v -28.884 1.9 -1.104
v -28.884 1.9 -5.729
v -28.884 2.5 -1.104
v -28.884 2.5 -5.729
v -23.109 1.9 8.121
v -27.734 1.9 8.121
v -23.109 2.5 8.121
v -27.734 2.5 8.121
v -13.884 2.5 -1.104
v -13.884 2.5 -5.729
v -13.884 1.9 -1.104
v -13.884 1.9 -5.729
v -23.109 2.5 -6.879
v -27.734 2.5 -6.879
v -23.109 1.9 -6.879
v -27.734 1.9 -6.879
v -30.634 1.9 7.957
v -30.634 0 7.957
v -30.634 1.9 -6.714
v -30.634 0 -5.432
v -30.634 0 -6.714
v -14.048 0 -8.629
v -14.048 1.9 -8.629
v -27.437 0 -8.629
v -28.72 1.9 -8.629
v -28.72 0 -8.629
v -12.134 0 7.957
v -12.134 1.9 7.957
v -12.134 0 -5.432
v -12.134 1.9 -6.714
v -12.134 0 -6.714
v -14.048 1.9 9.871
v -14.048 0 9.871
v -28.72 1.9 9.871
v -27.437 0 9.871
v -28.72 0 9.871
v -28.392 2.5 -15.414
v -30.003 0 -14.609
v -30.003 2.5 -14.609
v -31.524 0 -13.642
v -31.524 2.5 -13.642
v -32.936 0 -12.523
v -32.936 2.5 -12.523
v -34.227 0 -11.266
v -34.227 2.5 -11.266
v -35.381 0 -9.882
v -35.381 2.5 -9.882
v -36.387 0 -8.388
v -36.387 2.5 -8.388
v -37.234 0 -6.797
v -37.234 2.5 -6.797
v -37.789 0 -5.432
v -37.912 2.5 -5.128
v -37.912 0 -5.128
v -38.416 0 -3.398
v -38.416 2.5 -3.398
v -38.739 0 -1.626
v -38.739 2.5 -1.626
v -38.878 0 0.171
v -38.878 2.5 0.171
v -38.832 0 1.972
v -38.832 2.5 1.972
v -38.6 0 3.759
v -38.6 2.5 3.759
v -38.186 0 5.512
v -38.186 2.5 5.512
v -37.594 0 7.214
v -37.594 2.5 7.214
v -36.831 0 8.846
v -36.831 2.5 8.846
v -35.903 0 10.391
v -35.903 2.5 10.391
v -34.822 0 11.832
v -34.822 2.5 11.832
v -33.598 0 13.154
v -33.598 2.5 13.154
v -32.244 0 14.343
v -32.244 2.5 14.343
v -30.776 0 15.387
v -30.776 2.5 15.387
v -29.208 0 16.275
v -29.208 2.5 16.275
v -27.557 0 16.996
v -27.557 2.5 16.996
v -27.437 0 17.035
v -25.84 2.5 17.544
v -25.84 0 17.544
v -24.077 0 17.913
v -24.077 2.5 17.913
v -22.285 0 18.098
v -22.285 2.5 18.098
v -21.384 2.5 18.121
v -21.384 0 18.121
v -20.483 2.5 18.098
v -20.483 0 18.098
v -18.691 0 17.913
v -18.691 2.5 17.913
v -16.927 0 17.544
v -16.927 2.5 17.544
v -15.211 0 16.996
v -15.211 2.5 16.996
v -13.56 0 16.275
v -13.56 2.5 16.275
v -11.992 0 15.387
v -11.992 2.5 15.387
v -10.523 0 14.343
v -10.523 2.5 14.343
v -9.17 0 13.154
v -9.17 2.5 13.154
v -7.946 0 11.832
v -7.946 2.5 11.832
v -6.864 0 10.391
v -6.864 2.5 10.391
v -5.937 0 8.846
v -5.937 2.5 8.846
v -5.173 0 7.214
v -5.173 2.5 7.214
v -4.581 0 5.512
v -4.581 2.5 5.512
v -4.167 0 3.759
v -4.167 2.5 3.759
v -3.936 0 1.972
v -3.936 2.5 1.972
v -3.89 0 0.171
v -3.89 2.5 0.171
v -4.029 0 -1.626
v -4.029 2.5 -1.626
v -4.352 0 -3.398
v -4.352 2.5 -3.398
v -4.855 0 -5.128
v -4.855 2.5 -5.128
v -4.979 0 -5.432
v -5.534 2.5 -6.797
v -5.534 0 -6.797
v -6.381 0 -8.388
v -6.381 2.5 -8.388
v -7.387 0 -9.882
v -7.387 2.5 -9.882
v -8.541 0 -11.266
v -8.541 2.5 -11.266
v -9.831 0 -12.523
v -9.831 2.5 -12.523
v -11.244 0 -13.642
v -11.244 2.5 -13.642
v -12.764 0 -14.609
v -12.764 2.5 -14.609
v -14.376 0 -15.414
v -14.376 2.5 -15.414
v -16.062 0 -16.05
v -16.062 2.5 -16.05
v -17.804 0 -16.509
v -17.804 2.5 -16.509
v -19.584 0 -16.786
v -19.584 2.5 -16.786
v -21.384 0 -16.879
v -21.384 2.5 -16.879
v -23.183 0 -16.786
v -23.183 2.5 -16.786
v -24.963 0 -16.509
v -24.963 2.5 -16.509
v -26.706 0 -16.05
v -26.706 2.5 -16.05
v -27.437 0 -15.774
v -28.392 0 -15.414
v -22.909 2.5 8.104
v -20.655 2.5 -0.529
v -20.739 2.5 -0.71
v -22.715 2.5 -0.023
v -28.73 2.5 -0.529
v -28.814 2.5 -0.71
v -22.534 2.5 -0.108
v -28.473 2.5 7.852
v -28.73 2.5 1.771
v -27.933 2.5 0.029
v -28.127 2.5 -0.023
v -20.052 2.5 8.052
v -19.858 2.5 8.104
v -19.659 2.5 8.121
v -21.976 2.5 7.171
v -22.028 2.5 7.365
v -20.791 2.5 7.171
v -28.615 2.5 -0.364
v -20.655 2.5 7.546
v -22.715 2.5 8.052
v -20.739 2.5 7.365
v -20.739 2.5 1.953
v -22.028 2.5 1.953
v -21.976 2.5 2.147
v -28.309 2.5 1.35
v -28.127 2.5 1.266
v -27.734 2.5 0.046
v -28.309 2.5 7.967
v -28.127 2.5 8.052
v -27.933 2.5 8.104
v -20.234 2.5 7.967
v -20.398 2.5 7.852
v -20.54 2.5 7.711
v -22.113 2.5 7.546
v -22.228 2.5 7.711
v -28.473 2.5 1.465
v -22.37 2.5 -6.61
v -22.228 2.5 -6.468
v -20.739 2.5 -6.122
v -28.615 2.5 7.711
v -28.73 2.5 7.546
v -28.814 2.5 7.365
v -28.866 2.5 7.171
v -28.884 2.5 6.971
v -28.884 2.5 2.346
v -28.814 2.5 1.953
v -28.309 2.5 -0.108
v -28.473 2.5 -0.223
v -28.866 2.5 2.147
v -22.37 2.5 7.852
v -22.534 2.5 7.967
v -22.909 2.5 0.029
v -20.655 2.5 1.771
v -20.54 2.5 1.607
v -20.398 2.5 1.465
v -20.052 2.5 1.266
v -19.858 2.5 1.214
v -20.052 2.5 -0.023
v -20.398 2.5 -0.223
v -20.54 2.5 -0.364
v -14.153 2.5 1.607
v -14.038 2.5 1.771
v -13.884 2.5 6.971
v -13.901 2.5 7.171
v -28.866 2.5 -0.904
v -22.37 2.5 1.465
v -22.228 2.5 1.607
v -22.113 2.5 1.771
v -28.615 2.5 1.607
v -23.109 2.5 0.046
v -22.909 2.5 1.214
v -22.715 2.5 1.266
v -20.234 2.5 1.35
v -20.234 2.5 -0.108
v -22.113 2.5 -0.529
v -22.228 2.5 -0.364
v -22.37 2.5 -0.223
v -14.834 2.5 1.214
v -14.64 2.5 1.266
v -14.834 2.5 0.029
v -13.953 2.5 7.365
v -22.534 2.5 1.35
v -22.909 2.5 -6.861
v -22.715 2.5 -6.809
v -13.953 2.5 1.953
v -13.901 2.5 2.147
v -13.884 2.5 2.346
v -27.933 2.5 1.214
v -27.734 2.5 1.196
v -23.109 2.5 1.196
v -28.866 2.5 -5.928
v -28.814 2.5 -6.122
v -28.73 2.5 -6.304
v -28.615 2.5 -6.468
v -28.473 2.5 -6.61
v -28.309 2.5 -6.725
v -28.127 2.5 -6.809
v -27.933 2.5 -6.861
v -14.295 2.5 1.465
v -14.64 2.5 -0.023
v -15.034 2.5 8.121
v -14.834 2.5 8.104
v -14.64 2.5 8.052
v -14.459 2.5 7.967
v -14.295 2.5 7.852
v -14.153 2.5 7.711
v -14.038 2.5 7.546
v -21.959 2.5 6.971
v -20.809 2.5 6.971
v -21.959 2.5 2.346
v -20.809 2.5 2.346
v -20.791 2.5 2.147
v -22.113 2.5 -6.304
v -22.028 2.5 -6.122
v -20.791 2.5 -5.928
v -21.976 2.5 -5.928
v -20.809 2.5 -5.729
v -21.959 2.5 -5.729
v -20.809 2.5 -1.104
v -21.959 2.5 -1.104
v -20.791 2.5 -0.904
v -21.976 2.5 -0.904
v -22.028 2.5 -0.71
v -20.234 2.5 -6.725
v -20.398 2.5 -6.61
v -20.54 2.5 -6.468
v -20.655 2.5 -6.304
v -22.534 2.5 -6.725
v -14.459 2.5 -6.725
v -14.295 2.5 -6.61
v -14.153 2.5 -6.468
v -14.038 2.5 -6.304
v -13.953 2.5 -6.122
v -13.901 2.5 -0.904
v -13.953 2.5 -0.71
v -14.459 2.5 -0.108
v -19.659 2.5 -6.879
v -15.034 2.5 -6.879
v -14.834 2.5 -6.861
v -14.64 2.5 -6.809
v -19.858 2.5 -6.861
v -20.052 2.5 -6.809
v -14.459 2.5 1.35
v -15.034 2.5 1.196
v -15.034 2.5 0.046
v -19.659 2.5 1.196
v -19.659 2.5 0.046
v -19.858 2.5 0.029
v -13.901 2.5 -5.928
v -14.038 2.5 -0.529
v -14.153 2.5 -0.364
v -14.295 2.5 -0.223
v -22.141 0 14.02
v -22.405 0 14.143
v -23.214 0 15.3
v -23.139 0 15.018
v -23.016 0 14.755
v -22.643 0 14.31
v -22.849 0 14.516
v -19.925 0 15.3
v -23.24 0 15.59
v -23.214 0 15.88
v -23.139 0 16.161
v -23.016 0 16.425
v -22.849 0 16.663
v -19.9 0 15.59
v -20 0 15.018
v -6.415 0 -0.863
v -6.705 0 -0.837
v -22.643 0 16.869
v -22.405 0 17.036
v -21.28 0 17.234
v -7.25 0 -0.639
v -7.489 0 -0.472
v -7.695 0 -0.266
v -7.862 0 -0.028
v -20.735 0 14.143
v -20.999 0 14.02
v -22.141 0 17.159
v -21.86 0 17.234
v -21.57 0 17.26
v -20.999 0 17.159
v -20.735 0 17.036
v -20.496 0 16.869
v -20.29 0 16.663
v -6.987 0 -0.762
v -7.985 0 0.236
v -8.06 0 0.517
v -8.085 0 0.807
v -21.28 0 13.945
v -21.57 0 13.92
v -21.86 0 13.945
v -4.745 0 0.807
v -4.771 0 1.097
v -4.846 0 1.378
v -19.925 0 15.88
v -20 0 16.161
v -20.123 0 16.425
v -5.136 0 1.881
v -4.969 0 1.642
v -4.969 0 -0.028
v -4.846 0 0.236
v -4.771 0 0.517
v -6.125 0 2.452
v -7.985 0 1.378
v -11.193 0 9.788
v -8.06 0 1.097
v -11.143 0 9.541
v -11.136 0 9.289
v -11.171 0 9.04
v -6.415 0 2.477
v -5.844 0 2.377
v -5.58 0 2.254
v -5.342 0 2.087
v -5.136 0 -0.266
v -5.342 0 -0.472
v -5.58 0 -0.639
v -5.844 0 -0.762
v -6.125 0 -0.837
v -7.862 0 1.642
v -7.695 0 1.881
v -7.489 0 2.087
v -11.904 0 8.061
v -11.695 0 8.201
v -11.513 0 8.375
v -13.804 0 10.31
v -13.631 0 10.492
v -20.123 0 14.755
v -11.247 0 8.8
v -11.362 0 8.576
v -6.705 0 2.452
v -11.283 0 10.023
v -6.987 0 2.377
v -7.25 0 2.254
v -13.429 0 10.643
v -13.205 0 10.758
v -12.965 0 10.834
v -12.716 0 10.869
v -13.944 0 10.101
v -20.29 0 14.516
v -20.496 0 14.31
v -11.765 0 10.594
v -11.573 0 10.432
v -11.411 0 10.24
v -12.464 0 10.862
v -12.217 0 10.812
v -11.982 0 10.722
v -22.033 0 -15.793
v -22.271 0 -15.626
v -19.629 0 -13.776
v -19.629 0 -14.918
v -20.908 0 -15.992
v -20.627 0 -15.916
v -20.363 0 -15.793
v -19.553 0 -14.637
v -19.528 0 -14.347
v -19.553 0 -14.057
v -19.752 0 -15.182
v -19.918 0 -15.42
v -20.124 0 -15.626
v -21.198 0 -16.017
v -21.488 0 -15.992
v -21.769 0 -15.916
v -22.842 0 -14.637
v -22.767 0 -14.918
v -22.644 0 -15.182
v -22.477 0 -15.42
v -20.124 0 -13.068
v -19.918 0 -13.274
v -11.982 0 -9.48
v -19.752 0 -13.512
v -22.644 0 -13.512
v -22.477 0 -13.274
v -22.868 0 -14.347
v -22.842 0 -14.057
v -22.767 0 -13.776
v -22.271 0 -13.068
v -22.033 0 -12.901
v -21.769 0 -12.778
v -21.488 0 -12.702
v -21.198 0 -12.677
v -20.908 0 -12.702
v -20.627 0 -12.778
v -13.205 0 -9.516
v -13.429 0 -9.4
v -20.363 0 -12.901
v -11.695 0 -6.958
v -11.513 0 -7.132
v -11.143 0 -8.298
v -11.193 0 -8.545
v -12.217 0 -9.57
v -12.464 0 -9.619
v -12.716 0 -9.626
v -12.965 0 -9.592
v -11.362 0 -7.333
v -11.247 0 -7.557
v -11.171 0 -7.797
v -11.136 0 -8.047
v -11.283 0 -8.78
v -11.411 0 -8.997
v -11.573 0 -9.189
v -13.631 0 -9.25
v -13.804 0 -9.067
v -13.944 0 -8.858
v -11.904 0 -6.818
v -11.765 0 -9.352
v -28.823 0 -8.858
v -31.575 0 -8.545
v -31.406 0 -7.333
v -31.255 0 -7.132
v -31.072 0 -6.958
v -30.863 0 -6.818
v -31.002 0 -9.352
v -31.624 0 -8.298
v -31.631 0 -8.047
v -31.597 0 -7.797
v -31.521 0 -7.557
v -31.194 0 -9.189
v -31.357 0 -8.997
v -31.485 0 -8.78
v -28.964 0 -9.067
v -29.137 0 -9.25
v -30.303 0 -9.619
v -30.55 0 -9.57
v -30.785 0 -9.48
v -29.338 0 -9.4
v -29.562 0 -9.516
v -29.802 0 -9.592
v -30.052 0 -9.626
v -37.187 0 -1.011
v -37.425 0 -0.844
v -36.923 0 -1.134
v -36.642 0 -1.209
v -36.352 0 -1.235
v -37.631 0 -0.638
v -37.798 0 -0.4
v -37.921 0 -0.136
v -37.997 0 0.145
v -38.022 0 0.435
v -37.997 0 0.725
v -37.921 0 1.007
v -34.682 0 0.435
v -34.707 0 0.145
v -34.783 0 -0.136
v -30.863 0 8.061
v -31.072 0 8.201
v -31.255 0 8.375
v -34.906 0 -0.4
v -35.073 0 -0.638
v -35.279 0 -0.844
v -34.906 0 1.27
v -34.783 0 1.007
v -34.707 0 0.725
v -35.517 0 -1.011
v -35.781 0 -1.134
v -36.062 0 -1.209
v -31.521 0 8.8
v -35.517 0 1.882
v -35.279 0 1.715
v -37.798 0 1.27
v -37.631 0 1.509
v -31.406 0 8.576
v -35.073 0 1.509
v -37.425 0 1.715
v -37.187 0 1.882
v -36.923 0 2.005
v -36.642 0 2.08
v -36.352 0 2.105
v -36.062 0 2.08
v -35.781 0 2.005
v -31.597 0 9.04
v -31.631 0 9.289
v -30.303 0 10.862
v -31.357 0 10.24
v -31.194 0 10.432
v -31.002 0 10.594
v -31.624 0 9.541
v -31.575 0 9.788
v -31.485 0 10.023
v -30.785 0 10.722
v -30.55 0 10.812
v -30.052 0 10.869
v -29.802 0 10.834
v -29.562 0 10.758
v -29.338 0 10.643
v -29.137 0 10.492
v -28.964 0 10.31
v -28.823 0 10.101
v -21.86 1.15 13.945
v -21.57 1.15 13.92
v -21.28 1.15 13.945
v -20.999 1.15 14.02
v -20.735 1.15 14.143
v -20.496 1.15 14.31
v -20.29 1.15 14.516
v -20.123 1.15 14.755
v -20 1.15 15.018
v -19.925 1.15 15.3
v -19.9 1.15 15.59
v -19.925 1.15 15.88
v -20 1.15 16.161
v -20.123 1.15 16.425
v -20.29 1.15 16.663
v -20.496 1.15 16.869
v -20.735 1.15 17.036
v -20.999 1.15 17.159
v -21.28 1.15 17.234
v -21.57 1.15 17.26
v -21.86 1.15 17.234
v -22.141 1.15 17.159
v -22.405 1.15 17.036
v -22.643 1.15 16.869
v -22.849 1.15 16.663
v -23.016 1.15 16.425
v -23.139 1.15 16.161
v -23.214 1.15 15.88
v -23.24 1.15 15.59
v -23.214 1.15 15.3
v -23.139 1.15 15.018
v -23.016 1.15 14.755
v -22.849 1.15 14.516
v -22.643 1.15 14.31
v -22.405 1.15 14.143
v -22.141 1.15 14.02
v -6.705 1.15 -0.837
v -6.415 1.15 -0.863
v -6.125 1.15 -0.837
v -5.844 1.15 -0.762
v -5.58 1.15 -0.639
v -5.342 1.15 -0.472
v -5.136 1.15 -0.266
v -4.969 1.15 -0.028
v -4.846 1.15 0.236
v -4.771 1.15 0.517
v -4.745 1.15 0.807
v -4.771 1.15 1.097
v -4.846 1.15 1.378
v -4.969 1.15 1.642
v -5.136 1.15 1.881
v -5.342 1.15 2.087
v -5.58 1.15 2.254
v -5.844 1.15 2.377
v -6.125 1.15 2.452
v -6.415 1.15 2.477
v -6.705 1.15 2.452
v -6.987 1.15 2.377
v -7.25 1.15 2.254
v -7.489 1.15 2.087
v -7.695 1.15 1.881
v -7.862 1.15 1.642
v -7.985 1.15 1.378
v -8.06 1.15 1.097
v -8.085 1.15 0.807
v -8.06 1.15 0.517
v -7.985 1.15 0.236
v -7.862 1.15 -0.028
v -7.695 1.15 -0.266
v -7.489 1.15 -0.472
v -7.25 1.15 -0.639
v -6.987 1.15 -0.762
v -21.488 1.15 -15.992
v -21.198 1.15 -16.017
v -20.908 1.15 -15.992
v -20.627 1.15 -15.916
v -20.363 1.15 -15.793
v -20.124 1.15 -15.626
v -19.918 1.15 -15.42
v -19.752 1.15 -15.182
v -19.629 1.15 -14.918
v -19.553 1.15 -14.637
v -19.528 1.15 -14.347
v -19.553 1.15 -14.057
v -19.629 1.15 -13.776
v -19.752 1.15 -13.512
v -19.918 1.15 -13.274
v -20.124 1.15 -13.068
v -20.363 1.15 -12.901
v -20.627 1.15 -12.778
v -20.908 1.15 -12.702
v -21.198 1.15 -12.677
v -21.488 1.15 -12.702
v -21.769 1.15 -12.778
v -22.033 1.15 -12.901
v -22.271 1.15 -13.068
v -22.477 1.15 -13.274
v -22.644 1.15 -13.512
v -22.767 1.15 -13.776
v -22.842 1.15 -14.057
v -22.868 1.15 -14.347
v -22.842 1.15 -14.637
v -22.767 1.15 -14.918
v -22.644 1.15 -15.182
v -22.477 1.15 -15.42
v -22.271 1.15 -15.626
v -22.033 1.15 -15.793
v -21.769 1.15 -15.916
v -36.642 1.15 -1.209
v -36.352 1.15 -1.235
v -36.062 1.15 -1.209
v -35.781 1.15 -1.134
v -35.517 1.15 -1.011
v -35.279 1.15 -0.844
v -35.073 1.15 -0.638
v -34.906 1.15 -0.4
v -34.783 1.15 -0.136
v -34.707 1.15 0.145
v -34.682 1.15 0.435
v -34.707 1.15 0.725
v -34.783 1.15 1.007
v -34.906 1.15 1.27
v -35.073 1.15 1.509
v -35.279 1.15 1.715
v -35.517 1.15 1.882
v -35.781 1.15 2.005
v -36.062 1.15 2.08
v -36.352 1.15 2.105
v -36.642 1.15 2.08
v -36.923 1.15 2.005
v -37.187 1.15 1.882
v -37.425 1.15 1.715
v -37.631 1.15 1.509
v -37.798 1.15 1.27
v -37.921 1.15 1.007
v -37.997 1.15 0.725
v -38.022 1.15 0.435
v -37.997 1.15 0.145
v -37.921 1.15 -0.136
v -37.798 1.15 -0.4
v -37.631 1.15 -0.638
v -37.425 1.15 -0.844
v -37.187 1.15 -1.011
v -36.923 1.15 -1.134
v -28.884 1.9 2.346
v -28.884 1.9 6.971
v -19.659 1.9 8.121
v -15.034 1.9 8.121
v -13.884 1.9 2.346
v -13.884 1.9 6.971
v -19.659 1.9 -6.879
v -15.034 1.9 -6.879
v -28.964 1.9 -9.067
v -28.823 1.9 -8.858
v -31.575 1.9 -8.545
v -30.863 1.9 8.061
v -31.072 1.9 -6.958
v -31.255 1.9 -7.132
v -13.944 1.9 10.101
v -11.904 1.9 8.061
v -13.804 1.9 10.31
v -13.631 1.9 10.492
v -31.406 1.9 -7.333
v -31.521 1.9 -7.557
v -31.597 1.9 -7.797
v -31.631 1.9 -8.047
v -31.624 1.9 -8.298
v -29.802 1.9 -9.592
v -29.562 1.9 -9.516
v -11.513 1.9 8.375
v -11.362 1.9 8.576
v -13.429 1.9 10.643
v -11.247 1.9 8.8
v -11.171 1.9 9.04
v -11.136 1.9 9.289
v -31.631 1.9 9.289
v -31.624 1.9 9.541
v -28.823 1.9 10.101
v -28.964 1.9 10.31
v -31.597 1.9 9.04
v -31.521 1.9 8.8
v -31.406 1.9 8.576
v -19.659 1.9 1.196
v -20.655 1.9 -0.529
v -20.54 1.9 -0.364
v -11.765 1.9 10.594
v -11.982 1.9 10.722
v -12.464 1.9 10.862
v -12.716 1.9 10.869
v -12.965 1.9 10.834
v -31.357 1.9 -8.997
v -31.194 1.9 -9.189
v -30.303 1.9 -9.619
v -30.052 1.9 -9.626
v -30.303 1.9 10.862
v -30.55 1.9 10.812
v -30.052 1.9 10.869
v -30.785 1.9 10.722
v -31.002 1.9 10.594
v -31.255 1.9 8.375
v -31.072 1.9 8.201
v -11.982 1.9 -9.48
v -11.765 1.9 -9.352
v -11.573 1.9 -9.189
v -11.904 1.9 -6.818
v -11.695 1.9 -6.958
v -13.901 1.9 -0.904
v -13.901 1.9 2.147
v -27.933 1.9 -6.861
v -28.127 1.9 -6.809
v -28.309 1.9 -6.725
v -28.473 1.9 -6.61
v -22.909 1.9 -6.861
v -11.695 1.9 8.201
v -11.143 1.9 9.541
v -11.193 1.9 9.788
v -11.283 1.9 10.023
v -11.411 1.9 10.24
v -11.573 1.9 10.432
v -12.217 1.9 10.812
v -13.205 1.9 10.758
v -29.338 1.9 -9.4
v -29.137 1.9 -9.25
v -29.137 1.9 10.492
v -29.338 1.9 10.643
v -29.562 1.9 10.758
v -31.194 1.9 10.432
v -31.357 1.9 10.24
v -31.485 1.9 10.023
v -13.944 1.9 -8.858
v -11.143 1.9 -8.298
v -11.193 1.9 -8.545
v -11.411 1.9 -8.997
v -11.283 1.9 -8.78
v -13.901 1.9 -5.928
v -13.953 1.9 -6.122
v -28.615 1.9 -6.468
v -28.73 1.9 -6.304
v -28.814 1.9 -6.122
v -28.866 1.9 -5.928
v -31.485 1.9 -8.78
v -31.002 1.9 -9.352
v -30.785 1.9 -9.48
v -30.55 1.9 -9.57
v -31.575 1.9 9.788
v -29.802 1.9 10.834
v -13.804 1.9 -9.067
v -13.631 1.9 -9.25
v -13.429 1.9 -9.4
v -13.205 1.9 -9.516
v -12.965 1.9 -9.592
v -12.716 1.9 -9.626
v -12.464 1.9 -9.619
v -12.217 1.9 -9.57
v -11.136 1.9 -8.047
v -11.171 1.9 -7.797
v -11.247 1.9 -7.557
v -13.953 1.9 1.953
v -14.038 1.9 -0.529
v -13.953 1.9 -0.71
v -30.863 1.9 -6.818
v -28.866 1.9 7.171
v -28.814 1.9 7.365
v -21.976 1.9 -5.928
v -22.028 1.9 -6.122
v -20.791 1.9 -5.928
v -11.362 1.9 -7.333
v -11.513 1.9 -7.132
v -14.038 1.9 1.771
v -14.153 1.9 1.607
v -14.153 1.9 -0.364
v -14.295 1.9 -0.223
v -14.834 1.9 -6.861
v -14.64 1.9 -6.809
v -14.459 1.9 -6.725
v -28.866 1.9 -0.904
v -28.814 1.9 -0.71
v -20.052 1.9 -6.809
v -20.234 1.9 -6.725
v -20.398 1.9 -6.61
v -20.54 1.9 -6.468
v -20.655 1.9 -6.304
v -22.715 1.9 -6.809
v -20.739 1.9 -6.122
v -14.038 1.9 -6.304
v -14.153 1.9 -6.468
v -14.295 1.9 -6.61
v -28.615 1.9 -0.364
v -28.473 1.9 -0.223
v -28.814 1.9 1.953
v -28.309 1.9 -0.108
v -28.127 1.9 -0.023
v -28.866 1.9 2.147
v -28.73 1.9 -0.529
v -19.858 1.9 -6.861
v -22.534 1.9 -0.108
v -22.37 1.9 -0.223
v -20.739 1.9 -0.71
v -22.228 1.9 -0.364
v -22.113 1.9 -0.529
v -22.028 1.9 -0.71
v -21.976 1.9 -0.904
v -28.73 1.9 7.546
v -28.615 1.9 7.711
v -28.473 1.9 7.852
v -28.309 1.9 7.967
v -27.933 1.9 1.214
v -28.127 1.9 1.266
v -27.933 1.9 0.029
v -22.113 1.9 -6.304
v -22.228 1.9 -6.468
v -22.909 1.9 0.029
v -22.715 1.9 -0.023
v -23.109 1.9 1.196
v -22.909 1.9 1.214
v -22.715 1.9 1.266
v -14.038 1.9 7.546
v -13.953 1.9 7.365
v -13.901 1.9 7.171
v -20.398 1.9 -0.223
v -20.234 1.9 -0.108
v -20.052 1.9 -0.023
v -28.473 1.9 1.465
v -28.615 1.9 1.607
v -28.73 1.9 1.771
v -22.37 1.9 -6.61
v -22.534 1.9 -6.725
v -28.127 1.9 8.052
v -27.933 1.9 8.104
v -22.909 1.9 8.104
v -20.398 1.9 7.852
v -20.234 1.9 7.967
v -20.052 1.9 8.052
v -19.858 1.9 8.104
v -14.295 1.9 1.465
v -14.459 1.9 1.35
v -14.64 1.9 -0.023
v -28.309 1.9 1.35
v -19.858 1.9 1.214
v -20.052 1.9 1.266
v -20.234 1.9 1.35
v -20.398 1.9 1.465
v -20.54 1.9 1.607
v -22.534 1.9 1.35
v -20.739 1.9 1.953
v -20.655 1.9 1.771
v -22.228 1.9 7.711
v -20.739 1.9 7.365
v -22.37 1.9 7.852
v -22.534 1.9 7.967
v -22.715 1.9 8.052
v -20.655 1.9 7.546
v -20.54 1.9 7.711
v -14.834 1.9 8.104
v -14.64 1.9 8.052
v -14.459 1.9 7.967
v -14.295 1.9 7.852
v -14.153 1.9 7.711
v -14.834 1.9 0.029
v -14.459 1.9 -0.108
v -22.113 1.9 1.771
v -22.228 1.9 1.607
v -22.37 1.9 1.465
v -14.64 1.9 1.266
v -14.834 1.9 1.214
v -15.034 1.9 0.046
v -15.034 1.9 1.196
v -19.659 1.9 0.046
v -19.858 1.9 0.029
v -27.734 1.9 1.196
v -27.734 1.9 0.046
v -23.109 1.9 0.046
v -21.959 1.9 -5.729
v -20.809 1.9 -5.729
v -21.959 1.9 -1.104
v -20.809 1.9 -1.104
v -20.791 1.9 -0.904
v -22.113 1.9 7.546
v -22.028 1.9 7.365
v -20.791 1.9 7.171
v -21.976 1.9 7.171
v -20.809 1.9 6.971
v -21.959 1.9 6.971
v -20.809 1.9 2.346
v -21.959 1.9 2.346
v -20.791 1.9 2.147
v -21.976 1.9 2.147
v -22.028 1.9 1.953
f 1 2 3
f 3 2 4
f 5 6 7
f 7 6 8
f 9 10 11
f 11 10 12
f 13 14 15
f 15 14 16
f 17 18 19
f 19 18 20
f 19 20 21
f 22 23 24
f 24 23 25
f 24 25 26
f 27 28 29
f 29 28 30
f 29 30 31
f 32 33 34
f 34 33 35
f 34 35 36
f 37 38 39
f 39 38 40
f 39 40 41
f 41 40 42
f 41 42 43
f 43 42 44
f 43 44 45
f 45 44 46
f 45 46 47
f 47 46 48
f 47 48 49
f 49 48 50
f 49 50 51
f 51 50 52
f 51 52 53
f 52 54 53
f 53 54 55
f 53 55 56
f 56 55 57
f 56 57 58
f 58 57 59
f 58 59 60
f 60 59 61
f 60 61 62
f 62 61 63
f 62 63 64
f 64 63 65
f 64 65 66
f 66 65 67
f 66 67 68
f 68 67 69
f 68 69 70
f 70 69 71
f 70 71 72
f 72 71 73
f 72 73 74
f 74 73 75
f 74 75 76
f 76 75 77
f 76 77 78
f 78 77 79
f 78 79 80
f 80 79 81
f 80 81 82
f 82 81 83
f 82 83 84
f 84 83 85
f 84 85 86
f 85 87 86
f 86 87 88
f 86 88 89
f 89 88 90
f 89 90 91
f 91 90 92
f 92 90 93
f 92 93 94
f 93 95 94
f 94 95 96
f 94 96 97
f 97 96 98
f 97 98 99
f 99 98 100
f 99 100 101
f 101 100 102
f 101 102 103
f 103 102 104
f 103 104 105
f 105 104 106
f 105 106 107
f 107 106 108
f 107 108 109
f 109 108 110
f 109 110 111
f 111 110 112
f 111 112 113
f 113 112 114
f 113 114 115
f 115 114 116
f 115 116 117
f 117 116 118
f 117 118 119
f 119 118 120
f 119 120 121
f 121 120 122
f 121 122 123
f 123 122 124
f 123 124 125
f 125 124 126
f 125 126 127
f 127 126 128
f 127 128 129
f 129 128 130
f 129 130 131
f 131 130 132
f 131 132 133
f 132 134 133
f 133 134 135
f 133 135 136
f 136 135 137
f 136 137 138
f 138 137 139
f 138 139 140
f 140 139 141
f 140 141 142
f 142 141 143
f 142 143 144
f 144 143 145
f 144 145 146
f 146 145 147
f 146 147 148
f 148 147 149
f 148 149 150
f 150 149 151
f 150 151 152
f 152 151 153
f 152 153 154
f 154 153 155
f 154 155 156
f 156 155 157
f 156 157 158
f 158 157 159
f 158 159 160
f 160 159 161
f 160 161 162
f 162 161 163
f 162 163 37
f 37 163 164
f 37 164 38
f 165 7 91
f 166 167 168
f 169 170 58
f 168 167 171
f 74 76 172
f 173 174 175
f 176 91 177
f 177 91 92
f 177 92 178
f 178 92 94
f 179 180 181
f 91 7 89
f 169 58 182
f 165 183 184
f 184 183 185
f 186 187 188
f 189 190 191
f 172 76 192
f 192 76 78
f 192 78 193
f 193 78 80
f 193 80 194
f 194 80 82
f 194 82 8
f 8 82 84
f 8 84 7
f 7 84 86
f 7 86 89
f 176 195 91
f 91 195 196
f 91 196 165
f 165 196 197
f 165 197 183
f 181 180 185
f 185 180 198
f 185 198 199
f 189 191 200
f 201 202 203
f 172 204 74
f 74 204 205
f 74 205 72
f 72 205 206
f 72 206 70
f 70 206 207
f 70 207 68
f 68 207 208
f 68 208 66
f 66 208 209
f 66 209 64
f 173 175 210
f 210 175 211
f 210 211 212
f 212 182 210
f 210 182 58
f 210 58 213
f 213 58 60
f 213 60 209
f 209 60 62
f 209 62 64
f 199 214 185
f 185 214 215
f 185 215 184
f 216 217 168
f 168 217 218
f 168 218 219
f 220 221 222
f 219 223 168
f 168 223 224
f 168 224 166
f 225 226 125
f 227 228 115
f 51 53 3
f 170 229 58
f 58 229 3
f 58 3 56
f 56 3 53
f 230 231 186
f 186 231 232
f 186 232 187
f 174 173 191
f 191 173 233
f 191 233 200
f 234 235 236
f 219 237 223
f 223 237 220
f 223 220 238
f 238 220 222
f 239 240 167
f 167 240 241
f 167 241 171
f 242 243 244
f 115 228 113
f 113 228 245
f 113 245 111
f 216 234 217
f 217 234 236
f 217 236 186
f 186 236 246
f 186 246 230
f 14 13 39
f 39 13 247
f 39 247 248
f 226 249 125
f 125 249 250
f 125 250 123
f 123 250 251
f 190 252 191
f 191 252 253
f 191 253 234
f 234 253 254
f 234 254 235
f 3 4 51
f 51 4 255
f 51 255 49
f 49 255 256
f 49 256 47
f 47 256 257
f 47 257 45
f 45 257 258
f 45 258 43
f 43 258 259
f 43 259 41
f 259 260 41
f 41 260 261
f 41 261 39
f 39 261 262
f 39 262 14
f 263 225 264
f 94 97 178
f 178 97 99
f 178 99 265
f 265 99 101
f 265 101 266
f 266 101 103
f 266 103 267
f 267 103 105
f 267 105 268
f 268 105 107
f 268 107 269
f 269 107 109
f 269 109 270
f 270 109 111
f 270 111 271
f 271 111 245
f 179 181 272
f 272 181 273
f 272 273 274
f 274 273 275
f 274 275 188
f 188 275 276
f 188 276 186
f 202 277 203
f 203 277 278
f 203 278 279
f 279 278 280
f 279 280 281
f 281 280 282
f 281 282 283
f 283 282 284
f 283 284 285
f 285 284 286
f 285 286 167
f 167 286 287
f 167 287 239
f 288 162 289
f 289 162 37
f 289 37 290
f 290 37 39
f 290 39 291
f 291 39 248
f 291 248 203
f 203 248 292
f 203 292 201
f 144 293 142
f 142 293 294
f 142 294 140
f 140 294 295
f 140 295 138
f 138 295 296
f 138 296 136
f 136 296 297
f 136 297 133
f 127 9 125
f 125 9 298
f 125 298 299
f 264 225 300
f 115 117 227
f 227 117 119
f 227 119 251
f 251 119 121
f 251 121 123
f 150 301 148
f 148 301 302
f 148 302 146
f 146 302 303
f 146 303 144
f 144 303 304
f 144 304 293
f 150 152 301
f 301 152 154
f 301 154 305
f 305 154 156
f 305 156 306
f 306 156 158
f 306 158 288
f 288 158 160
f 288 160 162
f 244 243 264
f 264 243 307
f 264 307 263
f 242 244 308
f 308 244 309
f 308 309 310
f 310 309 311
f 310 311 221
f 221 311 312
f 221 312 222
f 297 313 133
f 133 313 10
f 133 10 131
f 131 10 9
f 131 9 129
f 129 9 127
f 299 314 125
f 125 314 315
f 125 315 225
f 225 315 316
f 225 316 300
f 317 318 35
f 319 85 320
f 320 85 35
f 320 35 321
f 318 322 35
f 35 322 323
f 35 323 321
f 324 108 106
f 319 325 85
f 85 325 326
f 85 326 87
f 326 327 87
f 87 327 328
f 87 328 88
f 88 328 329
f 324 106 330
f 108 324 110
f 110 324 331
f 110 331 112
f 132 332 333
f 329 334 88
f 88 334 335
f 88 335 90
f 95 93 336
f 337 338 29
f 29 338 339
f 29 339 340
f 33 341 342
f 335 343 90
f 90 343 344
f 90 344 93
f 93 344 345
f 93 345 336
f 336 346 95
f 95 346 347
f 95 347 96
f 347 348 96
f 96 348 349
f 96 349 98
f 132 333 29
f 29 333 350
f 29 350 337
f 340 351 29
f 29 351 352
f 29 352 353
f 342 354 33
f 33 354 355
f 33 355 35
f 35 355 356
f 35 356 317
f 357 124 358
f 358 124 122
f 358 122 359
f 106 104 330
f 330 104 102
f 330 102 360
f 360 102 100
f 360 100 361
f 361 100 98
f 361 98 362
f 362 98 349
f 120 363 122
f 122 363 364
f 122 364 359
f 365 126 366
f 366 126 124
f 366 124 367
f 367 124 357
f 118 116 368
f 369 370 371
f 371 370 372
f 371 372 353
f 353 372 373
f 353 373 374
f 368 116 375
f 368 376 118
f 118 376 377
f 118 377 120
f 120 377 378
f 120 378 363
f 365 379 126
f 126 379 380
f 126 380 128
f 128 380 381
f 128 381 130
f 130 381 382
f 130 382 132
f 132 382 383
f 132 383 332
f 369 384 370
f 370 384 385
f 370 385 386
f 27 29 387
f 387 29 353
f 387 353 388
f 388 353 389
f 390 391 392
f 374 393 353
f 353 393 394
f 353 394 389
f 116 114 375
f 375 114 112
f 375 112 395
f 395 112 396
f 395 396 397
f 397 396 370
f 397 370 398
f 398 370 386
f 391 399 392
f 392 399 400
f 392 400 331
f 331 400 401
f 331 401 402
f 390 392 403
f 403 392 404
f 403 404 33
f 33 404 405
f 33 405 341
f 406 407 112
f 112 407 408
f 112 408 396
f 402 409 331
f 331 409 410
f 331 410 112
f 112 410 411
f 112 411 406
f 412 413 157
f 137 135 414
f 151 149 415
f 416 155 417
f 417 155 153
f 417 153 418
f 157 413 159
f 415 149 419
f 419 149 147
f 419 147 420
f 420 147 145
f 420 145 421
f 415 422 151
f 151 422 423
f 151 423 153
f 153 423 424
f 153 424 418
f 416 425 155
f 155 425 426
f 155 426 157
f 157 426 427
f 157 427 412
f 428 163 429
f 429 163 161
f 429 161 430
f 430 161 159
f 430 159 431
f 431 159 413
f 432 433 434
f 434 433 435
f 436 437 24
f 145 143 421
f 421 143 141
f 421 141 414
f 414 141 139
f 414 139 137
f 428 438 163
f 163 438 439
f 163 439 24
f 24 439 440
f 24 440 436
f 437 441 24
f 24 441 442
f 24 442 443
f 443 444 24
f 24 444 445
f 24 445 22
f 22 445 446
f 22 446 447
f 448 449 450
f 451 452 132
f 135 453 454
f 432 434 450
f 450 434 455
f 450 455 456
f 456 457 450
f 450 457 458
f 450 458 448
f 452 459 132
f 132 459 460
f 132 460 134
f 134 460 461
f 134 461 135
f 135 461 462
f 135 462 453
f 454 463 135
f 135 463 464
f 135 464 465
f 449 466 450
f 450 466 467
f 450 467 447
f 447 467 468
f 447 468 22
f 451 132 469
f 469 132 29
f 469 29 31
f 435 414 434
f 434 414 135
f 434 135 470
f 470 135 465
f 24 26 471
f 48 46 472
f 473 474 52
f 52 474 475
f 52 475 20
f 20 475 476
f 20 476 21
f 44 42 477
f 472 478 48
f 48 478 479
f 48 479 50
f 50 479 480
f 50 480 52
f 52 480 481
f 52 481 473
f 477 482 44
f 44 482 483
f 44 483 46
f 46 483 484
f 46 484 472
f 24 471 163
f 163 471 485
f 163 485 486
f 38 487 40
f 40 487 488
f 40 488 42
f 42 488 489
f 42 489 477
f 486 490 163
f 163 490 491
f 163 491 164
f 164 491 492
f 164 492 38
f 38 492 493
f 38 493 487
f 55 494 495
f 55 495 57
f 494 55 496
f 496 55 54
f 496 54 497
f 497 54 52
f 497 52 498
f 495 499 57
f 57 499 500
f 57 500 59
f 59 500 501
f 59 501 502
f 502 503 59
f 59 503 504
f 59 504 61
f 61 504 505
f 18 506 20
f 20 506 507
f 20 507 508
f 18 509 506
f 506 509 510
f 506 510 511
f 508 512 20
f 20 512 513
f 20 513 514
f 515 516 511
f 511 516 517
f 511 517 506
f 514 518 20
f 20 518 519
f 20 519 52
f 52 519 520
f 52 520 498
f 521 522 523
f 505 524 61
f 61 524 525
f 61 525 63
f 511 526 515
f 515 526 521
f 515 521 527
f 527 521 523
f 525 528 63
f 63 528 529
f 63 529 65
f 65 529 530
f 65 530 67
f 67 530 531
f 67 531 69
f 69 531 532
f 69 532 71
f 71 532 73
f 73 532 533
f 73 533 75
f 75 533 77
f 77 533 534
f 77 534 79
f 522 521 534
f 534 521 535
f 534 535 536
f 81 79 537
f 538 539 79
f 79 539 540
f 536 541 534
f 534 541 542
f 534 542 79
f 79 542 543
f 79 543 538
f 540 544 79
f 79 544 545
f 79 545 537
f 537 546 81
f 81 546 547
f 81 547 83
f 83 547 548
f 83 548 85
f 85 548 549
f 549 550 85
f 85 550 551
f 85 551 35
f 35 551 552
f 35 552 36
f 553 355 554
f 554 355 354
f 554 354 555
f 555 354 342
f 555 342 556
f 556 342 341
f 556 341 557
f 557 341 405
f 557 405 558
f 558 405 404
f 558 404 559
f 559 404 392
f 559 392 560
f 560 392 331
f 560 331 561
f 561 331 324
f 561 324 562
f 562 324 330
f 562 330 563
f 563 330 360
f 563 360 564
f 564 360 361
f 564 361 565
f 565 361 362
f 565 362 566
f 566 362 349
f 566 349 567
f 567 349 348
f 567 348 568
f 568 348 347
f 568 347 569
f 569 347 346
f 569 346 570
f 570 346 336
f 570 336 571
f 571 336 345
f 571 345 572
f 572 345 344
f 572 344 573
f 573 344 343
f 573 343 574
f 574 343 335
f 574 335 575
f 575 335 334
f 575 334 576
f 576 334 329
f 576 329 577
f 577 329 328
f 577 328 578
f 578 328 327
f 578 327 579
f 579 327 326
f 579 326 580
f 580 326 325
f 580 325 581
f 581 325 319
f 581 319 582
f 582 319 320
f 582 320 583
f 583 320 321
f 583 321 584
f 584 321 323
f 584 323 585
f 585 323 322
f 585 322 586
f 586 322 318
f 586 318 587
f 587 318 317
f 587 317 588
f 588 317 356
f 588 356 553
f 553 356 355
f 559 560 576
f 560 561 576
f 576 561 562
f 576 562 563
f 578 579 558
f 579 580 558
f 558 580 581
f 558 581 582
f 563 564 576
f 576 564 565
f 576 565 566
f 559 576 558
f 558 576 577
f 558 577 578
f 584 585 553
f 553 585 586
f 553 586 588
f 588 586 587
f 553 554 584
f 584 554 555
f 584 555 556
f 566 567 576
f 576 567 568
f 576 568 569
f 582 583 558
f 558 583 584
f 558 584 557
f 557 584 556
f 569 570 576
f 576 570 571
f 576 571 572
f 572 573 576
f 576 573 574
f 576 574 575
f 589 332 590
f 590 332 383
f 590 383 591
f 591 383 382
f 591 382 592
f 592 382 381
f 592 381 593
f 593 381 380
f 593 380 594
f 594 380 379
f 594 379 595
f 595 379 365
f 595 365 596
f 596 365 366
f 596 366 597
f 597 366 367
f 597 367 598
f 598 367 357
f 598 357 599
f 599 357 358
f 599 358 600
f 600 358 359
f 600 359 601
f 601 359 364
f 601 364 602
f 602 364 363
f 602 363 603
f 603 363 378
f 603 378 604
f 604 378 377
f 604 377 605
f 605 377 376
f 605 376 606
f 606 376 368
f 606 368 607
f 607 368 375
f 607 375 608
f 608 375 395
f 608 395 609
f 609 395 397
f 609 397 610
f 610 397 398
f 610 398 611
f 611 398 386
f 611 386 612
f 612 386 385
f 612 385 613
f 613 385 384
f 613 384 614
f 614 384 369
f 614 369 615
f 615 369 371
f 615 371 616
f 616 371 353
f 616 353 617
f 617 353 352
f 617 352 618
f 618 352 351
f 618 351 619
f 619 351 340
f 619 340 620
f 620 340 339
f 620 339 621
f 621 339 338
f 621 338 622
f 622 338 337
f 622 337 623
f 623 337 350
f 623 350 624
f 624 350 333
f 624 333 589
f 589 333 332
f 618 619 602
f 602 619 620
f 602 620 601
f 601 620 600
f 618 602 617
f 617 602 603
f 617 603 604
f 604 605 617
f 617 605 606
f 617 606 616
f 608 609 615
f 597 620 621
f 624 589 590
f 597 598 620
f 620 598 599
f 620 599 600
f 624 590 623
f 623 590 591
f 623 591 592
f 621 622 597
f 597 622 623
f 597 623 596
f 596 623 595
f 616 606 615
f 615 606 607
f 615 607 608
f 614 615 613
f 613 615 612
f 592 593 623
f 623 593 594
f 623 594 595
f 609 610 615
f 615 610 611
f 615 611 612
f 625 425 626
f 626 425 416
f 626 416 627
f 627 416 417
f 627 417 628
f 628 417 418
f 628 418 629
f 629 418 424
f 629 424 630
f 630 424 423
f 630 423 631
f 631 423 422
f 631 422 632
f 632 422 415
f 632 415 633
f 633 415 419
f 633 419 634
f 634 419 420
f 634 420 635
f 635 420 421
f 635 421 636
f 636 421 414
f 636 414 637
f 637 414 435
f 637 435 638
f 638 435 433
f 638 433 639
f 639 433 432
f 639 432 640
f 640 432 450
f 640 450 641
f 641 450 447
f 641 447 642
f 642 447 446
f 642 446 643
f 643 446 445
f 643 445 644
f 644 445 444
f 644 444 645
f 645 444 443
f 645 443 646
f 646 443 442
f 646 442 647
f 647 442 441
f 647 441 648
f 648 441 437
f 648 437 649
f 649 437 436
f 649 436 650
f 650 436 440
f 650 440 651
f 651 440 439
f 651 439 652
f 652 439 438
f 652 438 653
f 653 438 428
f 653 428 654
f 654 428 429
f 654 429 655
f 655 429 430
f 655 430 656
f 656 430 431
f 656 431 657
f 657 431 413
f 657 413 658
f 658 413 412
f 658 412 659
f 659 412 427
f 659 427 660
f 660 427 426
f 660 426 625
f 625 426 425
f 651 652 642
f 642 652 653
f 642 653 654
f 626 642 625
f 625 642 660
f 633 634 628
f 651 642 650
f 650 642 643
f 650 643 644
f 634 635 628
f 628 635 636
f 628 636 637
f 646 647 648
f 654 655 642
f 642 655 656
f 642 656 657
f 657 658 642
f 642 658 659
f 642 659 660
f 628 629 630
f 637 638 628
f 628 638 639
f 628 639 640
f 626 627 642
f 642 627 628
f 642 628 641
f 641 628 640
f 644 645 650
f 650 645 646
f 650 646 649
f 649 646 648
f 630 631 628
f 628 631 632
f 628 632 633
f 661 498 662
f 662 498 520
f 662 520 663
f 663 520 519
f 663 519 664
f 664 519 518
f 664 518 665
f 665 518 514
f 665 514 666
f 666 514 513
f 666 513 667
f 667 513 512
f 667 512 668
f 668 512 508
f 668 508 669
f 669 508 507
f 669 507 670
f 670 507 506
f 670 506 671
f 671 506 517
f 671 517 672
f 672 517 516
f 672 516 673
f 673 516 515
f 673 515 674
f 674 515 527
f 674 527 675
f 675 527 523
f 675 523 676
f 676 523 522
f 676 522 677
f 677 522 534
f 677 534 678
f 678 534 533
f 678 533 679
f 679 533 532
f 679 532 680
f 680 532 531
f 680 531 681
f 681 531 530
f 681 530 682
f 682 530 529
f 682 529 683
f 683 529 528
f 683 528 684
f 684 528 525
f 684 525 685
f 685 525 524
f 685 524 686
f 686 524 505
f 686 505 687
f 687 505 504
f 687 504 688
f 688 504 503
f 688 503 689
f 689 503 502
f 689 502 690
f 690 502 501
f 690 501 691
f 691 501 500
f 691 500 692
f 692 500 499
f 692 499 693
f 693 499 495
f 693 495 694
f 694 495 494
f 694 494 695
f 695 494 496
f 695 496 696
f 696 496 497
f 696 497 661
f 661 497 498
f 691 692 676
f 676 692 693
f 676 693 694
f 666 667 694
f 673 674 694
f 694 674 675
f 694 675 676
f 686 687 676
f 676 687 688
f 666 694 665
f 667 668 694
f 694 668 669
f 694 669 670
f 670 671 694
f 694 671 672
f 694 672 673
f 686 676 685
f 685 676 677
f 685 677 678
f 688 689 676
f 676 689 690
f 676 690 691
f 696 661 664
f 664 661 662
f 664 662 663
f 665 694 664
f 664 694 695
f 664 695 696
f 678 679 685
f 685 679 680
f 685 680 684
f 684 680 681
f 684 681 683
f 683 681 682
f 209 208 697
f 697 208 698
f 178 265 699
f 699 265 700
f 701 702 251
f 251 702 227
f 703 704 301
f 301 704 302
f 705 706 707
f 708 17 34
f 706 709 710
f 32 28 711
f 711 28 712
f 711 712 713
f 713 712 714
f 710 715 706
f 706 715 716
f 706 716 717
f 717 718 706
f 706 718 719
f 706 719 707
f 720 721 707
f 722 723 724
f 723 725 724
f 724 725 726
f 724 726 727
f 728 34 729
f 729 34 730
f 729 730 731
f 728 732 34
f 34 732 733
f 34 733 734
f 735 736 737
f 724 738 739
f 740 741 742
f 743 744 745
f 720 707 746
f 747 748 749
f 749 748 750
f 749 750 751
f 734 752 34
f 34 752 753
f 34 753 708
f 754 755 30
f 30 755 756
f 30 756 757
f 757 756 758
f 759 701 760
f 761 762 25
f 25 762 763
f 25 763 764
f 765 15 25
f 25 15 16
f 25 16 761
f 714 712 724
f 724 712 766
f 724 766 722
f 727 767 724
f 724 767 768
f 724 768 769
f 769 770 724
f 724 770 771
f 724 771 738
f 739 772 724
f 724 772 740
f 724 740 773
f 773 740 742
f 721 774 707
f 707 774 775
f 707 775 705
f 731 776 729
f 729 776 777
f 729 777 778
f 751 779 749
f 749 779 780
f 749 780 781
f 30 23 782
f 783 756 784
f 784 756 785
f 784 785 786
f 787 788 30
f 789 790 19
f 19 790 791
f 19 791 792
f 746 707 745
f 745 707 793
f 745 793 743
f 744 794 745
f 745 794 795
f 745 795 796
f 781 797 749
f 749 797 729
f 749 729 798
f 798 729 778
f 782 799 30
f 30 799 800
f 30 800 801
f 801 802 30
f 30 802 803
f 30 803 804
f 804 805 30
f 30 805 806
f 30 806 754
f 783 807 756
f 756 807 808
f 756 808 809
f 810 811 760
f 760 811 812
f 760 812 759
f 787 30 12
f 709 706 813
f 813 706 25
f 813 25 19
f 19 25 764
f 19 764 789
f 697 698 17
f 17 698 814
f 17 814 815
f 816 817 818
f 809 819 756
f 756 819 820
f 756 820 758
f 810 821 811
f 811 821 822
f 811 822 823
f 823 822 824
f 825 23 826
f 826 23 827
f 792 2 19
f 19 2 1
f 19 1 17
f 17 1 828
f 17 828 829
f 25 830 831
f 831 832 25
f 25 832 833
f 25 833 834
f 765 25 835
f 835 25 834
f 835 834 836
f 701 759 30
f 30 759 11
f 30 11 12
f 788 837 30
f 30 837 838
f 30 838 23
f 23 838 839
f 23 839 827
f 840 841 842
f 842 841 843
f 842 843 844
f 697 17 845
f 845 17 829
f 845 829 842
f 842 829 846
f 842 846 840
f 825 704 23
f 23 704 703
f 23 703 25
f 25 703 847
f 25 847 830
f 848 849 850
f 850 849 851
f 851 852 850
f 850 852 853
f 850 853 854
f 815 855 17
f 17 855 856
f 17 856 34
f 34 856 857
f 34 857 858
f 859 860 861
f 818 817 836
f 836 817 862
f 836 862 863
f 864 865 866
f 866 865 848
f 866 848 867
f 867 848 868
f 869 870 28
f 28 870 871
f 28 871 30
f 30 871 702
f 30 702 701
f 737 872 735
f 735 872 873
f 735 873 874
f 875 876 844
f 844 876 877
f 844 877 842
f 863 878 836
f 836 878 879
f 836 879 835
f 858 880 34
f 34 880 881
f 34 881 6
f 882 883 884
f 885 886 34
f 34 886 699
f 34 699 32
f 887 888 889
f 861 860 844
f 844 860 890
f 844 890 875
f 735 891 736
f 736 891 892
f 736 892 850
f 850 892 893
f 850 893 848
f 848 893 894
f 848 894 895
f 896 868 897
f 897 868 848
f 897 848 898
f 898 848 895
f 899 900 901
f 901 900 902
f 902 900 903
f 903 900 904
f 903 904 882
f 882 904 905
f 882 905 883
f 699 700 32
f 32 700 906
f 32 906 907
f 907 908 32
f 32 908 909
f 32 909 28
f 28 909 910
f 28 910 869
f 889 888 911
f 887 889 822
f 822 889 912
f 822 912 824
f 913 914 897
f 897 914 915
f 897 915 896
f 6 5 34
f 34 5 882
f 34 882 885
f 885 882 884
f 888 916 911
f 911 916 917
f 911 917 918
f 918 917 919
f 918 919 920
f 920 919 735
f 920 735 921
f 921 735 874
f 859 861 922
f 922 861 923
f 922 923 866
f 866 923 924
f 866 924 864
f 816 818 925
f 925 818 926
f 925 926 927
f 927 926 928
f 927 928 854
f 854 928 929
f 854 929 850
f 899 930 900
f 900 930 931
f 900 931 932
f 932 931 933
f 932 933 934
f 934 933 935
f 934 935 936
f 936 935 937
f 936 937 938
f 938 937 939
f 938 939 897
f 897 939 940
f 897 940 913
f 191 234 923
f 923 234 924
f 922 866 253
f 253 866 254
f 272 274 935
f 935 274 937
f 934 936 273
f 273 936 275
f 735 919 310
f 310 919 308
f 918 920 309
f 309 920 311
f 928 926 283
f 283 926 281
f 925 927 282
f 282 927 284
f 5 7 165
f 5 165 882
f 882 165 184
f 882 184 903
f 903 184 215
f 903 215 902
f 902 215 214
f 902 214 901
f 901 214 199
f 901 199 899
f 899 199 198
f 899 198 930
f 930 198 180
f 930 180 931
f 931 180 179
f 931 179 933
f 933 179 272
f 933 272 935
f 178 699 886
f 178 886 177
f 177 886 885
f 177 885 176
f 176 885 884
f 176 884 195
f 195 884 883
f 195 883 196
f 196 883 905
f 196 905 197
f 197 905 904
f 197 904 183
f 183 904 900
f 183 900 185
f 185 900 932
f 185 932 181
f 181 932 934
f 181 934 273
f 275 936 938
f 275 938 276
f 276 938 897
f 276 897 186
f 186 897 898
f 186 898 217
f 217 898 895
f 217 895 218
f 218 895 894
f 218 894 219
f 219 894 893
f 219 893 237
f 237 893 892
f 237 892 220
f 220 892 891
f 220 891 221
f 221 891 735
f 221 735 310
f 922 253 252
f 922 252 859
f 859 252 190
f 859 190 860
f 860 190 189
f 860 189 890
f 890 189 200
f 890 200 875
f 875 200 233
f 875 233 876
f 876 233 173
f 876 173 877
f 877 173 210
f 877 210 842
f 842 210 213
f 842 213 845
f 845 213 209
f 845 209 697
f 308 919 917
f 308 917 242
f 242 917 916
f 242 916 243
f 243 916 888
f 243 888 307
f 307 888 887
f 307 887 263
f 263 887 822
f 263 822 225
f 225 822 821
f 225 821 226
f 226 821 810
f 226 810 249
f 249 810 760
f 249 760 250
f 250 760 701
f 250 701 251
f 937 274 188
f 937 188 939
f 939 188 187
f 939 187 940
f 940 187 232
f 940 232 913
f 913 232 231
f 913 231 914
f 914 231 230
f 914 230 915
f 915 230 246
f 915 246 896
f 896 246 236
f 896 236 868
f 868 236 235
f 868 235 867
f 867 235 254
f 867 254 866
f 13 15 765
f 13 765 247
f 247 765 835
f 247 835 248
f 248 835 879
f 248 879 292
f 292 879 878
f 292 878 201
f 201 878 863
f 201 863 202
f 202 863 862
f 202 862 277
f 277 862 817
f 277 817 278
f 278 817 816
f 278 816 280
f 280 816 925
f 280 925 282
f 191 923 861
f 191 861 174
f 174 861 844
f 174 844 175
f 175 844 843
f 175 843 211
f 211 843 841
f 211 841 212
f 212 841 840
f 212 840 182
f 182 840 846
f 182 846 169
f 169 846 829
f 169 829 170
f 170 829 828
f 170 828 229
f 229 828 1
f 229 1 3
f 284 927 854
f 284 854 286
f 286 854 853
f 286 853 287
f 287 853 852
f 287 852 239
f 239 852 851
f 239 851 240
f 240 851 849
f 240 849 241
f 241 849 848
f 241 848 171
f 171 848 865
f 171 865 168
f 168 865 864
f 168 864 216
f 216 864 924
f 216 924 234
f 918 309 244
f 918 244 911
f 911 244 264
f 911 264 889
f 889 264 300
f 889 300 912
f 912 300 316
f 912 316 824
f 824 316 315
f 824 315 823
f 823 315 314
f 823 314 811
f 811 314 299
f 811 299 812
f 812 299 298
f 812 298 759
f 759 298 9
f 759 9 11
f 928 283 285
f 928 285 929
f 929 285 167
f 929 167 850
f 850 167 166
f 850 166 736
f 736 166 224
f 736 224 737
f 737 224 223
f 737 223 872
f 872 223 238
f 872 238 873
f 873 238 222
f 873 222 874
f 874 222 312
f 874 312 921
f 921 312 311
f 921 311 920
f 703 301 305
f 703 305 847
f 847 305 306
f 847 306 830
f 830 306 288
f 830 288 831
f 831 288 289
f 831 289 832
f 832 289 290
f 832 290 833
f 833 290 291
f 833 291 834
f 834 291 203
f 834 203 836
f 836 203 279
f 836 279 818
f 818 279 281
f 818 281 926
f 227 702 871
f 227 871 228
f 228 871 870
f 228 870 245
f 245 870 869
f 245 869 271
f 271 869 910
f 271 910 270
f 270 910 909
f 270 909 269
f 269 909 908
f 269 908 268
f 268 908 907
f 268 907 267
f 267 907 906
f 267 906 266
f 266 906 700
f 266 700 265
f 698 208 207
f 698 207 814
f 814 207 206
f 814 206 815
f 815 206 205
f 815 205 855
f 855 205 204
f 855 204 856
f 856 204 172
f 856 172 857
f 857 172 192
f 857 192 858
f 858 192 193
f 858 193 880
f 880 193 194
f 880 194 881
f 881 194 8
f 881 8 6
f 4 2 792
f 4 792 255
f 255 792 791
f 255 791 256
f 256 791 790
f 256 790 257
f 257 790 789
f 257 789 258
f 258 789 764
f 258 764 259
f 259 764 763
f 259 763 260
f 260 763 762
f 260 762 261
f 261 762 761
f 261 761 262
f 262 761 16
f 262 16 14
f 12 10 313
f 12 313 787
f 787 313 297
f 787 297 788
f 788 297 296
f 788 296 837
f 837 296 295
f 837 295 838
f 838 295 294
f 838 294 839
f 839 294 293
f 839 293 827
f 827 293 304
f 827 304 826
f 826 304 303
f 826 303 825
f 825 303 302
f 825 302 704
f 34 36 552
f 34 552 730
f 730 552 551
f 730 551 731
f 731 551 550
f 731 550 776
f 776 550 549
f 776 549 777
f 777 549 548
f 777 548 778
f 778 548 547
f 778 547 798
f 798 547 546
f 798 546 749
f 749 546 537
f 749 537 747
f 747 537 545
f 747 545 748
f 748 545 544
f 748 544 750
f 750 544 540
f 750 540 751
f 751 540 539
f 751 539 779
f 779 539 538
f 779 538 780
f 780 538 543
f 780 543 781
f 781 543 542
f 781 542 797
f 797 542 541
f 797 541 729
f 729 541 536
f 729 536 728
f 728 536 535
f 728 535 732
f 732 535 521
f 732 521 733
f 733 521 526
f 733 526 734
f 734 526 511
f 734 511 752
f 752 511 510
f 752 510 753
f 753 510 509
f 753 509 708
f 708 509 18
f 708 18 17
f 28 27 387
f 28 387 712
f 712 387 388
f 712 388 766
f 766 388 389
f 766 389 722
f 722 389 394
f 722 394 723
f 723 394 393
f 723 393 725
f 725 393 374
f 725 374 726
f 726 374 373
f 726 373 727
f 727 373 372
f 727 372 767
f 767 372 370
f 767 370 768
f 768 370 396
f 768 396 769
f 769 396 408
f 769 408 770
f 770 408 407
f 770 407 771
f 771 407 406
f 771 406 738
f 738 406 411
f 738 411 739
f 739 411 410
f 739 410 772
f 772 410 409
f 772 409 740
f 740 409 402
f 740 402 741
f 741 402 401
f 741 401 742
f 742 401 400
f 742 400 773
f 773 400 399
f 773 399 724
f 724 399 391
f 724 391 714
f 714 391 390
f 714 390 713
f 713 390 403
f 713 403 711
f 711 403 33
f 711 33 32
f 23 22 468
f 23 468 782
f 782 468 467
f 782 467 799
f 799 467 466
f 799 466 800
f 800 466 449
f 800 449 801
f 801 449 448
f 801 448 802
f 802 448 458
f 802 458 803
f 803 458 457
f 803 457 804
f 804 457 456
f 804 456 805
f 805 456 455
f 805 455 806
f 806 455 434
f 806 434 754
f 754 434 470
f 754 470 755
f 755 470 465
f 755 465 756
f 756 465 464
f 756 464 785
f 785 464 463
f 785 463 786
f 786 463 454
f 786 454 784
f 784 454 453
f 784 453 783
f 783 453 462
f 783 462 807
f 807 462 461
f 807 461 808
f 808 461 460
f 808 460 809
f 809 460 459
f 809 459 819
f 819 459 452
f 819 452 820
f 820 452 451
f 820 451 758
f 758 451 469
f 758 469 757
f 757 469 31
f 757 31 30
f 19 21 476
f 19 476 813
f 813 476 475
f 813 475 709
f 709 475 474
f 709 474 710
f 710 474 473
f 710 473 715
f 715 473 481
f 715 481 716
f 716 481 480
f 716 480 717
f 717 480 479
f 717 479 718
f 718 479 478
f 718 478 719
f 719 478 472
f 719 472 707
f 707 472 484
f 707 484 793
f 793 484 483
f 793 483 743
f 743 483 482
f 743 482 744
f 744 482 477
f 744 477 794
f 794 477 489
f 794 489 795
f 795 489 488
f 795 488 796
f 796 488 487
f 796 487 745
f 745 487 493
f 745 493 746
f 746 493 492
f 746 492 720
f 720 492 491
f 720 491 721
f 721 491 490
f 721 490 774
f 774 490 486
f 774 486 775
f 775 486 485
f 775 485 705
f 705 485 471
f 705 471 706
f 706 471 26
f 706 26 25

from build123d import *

# Parameters (mm, degrees)
SKETCH2_R           = 17.5
SKETCH2_W           = 18.5
SKETCH2_H           = 18.5
BOSS_EXTRUDE1_DEPTH = 2.5
SKETCH4_R           = 1.67
CUT_EXTRUDE1_DEPTH  = 1.15
CIRPATTERN1_COUNT   = 4
SKETCH5_W           = 18.5
SKETCH5_H           = 18.5
SKETCH5_W_2         = 15
SKETCH5_H_2         = 15
BOSS_EXTRUDE2_DEPTH = 0.6
SKETCH10_W          = 1.15
SKETCH10_H          = 6.925
SKETCH10_H_2        = 1.15
SKETCH10_W_2        = 6.925
BOSS_EXTRUDE4_DEPTH = 0.6
FILLET1_R           = 1.15
SKETCH11_R          = 1.5
CUT_EXTRUDE2_DEPTH  = 1.9
CIRPATTERN2_COUNT   = 4


with BuildPart() as part:
    # Sketch2 → Boss-Extrude1 (new body)
    with BuildSketch(Plane(origin=(0, 0, 0), x_dir=(1, 0, 0), z_dir=(0, 1, 0))):
        with Locations(Location((-21.383734207, -0.621346489, 0), (0, 0, 270))):
            Circle(SKETCH2_R)
        with Locations((-21.383734207, -0.621346489)):
            Rectangle(SKETCH2_W, SKETCH2_H, mode=Mode.SUBTRACT)
    extrude(amount=BOSS_EXTRUDE1_DEPTH)

    # Sketch4 → Cut-Extrude1 (cut)
    with BuildSketch(Plane.XZ):
        with Locations(Location((-21.569675845, 15.589648339, 0), (0, 0, 270))):
            Circle(SKETCH4_R)
    cut_extrude1 = extrude(amount=-CUT_EXTRUDE1_DEPTH, mode=Mode.SUBTRACT)

    # CirPattern1: Cut-Extrude1 ×4 about axis
    cirpattern1_axis = Axis((-21.383734207, 0, 0.621346489), (0, 1, 0))
    for i in range(1, CIRPATTERN1_COUNT):
        add(cut_extrude1.rotate(cirpattern1_axis, i * 360 / CIRPATTERN1_COUNT), mode=Mode.SUBTRACT)

    # Sketch5 → Boss-Extrude2 (add)
    with BuildSketch(Plane(origin=(0, 2.5, 0), x_dir=(1, 0, 0), z_dir=(0, 1, 0))):
        with Locations((-21.383734207, -0.621346489)):
            Rectangle(SKETCH5_W, SKETCH5_H)
        with Locations((-21.383734207, -0.621346489)):
            Rectangle(SKETCH5_W_2, SKETCH5_H_2, mode=Mode.SUBTRACT)
    extrude(amount=-BOSS_EXTRUDE2_DEPTH)

    # Sketch10 → Boss-Extrude4 (add)
    with BuildSketch(Plane(origin=(0, 2.5, 0), x_dir=(1, 0, 0), z_dir=(0, 1, 0))):
        with Locations((-21.383734207, 3.416153511)):
            Rectangle(SKETCH10_W, SKETCH10_H)
        with Locations((-21.383734207, -4.658846489)):
            Rectangle(SKETCH10_W, SKETCH10_H)
        with Locations((-21.383734207, -0.621346489)):
            Rectangle(SKETCH10_W, SKETCH10_H_2)
        with Locations((-17.346234207, -0.621346489)):
            Rectangle(SKETCH10_W_2, SKETCH10_H_2)
        with Locations((-25.421234207, -0.621346489)):
            Rectangle(SKETCH10_W_2, SKETCH10_H_2)
    extrude(amount=-BOSS_EXTRUDE4_DEPTH)

    # Fillet1
    fillet1_edges = [part.edges().sort_by_distance(p)[0] for p in [
        (-28.883734207, 2.2, -6.878653511),
        (-28.883734207, 2.2, 8.121346489),
        (-13.883734207, 2.2, 8.121346489),
        (-13.883734207, 2.2, -6.878653511),
        (-28.883734207, 2.2, 0.046346489),
        (-28.883734207, 2.2, 1.196346489),
        (-21.958734207, 2.2, 1.196346489),
        (-21.958734207, 2.2, 8.121346489),
        (-20.808734207, 2.2, 8.121346489),
        (-20.808734207, 2.2, 1.196346489),
        (-13.883734207, 2.2, 1.196346489),
        (-13.883734207, 2.2, 0.046346489),
        (-20.808734207, 2.2, 0.046346489),
        (-20.808734207, 2.2, -6.878653511),
        (-21.958734207, 2.2, -6.878653511),
        (-21.958734207, 2.2, 0.046346489),
    ]]
    fillet(fillet1_edges, radius=FILLET1_R)

    # Sketch11 → Cut-Extrude2 (cut)
    with BuildSketch(Plane.XZ):
        with Locations((-30.133734207, 9.371346489)):
            Circle(SKETCH11_R)
    cut_extrude2 = extrude(amount=-CUT_EXTRUDE2_DEPTH, mode=Mode.SUBTRACT)

    # CirPattern2: Cut-Extrude2 ×4 about axis
    cirpattern2_axis = Axis((-21.383734207, 0, 0.621346489), (0, 1, 0))
    for i in range(1, CIRPATTERN2_COUNT):
        add(cut_extrude2.rotate(cirpattern2_axis, i * 360 / CIRPATTERN2_COUNT), mode=Mode.SUBTRACT)


solid = part.part
